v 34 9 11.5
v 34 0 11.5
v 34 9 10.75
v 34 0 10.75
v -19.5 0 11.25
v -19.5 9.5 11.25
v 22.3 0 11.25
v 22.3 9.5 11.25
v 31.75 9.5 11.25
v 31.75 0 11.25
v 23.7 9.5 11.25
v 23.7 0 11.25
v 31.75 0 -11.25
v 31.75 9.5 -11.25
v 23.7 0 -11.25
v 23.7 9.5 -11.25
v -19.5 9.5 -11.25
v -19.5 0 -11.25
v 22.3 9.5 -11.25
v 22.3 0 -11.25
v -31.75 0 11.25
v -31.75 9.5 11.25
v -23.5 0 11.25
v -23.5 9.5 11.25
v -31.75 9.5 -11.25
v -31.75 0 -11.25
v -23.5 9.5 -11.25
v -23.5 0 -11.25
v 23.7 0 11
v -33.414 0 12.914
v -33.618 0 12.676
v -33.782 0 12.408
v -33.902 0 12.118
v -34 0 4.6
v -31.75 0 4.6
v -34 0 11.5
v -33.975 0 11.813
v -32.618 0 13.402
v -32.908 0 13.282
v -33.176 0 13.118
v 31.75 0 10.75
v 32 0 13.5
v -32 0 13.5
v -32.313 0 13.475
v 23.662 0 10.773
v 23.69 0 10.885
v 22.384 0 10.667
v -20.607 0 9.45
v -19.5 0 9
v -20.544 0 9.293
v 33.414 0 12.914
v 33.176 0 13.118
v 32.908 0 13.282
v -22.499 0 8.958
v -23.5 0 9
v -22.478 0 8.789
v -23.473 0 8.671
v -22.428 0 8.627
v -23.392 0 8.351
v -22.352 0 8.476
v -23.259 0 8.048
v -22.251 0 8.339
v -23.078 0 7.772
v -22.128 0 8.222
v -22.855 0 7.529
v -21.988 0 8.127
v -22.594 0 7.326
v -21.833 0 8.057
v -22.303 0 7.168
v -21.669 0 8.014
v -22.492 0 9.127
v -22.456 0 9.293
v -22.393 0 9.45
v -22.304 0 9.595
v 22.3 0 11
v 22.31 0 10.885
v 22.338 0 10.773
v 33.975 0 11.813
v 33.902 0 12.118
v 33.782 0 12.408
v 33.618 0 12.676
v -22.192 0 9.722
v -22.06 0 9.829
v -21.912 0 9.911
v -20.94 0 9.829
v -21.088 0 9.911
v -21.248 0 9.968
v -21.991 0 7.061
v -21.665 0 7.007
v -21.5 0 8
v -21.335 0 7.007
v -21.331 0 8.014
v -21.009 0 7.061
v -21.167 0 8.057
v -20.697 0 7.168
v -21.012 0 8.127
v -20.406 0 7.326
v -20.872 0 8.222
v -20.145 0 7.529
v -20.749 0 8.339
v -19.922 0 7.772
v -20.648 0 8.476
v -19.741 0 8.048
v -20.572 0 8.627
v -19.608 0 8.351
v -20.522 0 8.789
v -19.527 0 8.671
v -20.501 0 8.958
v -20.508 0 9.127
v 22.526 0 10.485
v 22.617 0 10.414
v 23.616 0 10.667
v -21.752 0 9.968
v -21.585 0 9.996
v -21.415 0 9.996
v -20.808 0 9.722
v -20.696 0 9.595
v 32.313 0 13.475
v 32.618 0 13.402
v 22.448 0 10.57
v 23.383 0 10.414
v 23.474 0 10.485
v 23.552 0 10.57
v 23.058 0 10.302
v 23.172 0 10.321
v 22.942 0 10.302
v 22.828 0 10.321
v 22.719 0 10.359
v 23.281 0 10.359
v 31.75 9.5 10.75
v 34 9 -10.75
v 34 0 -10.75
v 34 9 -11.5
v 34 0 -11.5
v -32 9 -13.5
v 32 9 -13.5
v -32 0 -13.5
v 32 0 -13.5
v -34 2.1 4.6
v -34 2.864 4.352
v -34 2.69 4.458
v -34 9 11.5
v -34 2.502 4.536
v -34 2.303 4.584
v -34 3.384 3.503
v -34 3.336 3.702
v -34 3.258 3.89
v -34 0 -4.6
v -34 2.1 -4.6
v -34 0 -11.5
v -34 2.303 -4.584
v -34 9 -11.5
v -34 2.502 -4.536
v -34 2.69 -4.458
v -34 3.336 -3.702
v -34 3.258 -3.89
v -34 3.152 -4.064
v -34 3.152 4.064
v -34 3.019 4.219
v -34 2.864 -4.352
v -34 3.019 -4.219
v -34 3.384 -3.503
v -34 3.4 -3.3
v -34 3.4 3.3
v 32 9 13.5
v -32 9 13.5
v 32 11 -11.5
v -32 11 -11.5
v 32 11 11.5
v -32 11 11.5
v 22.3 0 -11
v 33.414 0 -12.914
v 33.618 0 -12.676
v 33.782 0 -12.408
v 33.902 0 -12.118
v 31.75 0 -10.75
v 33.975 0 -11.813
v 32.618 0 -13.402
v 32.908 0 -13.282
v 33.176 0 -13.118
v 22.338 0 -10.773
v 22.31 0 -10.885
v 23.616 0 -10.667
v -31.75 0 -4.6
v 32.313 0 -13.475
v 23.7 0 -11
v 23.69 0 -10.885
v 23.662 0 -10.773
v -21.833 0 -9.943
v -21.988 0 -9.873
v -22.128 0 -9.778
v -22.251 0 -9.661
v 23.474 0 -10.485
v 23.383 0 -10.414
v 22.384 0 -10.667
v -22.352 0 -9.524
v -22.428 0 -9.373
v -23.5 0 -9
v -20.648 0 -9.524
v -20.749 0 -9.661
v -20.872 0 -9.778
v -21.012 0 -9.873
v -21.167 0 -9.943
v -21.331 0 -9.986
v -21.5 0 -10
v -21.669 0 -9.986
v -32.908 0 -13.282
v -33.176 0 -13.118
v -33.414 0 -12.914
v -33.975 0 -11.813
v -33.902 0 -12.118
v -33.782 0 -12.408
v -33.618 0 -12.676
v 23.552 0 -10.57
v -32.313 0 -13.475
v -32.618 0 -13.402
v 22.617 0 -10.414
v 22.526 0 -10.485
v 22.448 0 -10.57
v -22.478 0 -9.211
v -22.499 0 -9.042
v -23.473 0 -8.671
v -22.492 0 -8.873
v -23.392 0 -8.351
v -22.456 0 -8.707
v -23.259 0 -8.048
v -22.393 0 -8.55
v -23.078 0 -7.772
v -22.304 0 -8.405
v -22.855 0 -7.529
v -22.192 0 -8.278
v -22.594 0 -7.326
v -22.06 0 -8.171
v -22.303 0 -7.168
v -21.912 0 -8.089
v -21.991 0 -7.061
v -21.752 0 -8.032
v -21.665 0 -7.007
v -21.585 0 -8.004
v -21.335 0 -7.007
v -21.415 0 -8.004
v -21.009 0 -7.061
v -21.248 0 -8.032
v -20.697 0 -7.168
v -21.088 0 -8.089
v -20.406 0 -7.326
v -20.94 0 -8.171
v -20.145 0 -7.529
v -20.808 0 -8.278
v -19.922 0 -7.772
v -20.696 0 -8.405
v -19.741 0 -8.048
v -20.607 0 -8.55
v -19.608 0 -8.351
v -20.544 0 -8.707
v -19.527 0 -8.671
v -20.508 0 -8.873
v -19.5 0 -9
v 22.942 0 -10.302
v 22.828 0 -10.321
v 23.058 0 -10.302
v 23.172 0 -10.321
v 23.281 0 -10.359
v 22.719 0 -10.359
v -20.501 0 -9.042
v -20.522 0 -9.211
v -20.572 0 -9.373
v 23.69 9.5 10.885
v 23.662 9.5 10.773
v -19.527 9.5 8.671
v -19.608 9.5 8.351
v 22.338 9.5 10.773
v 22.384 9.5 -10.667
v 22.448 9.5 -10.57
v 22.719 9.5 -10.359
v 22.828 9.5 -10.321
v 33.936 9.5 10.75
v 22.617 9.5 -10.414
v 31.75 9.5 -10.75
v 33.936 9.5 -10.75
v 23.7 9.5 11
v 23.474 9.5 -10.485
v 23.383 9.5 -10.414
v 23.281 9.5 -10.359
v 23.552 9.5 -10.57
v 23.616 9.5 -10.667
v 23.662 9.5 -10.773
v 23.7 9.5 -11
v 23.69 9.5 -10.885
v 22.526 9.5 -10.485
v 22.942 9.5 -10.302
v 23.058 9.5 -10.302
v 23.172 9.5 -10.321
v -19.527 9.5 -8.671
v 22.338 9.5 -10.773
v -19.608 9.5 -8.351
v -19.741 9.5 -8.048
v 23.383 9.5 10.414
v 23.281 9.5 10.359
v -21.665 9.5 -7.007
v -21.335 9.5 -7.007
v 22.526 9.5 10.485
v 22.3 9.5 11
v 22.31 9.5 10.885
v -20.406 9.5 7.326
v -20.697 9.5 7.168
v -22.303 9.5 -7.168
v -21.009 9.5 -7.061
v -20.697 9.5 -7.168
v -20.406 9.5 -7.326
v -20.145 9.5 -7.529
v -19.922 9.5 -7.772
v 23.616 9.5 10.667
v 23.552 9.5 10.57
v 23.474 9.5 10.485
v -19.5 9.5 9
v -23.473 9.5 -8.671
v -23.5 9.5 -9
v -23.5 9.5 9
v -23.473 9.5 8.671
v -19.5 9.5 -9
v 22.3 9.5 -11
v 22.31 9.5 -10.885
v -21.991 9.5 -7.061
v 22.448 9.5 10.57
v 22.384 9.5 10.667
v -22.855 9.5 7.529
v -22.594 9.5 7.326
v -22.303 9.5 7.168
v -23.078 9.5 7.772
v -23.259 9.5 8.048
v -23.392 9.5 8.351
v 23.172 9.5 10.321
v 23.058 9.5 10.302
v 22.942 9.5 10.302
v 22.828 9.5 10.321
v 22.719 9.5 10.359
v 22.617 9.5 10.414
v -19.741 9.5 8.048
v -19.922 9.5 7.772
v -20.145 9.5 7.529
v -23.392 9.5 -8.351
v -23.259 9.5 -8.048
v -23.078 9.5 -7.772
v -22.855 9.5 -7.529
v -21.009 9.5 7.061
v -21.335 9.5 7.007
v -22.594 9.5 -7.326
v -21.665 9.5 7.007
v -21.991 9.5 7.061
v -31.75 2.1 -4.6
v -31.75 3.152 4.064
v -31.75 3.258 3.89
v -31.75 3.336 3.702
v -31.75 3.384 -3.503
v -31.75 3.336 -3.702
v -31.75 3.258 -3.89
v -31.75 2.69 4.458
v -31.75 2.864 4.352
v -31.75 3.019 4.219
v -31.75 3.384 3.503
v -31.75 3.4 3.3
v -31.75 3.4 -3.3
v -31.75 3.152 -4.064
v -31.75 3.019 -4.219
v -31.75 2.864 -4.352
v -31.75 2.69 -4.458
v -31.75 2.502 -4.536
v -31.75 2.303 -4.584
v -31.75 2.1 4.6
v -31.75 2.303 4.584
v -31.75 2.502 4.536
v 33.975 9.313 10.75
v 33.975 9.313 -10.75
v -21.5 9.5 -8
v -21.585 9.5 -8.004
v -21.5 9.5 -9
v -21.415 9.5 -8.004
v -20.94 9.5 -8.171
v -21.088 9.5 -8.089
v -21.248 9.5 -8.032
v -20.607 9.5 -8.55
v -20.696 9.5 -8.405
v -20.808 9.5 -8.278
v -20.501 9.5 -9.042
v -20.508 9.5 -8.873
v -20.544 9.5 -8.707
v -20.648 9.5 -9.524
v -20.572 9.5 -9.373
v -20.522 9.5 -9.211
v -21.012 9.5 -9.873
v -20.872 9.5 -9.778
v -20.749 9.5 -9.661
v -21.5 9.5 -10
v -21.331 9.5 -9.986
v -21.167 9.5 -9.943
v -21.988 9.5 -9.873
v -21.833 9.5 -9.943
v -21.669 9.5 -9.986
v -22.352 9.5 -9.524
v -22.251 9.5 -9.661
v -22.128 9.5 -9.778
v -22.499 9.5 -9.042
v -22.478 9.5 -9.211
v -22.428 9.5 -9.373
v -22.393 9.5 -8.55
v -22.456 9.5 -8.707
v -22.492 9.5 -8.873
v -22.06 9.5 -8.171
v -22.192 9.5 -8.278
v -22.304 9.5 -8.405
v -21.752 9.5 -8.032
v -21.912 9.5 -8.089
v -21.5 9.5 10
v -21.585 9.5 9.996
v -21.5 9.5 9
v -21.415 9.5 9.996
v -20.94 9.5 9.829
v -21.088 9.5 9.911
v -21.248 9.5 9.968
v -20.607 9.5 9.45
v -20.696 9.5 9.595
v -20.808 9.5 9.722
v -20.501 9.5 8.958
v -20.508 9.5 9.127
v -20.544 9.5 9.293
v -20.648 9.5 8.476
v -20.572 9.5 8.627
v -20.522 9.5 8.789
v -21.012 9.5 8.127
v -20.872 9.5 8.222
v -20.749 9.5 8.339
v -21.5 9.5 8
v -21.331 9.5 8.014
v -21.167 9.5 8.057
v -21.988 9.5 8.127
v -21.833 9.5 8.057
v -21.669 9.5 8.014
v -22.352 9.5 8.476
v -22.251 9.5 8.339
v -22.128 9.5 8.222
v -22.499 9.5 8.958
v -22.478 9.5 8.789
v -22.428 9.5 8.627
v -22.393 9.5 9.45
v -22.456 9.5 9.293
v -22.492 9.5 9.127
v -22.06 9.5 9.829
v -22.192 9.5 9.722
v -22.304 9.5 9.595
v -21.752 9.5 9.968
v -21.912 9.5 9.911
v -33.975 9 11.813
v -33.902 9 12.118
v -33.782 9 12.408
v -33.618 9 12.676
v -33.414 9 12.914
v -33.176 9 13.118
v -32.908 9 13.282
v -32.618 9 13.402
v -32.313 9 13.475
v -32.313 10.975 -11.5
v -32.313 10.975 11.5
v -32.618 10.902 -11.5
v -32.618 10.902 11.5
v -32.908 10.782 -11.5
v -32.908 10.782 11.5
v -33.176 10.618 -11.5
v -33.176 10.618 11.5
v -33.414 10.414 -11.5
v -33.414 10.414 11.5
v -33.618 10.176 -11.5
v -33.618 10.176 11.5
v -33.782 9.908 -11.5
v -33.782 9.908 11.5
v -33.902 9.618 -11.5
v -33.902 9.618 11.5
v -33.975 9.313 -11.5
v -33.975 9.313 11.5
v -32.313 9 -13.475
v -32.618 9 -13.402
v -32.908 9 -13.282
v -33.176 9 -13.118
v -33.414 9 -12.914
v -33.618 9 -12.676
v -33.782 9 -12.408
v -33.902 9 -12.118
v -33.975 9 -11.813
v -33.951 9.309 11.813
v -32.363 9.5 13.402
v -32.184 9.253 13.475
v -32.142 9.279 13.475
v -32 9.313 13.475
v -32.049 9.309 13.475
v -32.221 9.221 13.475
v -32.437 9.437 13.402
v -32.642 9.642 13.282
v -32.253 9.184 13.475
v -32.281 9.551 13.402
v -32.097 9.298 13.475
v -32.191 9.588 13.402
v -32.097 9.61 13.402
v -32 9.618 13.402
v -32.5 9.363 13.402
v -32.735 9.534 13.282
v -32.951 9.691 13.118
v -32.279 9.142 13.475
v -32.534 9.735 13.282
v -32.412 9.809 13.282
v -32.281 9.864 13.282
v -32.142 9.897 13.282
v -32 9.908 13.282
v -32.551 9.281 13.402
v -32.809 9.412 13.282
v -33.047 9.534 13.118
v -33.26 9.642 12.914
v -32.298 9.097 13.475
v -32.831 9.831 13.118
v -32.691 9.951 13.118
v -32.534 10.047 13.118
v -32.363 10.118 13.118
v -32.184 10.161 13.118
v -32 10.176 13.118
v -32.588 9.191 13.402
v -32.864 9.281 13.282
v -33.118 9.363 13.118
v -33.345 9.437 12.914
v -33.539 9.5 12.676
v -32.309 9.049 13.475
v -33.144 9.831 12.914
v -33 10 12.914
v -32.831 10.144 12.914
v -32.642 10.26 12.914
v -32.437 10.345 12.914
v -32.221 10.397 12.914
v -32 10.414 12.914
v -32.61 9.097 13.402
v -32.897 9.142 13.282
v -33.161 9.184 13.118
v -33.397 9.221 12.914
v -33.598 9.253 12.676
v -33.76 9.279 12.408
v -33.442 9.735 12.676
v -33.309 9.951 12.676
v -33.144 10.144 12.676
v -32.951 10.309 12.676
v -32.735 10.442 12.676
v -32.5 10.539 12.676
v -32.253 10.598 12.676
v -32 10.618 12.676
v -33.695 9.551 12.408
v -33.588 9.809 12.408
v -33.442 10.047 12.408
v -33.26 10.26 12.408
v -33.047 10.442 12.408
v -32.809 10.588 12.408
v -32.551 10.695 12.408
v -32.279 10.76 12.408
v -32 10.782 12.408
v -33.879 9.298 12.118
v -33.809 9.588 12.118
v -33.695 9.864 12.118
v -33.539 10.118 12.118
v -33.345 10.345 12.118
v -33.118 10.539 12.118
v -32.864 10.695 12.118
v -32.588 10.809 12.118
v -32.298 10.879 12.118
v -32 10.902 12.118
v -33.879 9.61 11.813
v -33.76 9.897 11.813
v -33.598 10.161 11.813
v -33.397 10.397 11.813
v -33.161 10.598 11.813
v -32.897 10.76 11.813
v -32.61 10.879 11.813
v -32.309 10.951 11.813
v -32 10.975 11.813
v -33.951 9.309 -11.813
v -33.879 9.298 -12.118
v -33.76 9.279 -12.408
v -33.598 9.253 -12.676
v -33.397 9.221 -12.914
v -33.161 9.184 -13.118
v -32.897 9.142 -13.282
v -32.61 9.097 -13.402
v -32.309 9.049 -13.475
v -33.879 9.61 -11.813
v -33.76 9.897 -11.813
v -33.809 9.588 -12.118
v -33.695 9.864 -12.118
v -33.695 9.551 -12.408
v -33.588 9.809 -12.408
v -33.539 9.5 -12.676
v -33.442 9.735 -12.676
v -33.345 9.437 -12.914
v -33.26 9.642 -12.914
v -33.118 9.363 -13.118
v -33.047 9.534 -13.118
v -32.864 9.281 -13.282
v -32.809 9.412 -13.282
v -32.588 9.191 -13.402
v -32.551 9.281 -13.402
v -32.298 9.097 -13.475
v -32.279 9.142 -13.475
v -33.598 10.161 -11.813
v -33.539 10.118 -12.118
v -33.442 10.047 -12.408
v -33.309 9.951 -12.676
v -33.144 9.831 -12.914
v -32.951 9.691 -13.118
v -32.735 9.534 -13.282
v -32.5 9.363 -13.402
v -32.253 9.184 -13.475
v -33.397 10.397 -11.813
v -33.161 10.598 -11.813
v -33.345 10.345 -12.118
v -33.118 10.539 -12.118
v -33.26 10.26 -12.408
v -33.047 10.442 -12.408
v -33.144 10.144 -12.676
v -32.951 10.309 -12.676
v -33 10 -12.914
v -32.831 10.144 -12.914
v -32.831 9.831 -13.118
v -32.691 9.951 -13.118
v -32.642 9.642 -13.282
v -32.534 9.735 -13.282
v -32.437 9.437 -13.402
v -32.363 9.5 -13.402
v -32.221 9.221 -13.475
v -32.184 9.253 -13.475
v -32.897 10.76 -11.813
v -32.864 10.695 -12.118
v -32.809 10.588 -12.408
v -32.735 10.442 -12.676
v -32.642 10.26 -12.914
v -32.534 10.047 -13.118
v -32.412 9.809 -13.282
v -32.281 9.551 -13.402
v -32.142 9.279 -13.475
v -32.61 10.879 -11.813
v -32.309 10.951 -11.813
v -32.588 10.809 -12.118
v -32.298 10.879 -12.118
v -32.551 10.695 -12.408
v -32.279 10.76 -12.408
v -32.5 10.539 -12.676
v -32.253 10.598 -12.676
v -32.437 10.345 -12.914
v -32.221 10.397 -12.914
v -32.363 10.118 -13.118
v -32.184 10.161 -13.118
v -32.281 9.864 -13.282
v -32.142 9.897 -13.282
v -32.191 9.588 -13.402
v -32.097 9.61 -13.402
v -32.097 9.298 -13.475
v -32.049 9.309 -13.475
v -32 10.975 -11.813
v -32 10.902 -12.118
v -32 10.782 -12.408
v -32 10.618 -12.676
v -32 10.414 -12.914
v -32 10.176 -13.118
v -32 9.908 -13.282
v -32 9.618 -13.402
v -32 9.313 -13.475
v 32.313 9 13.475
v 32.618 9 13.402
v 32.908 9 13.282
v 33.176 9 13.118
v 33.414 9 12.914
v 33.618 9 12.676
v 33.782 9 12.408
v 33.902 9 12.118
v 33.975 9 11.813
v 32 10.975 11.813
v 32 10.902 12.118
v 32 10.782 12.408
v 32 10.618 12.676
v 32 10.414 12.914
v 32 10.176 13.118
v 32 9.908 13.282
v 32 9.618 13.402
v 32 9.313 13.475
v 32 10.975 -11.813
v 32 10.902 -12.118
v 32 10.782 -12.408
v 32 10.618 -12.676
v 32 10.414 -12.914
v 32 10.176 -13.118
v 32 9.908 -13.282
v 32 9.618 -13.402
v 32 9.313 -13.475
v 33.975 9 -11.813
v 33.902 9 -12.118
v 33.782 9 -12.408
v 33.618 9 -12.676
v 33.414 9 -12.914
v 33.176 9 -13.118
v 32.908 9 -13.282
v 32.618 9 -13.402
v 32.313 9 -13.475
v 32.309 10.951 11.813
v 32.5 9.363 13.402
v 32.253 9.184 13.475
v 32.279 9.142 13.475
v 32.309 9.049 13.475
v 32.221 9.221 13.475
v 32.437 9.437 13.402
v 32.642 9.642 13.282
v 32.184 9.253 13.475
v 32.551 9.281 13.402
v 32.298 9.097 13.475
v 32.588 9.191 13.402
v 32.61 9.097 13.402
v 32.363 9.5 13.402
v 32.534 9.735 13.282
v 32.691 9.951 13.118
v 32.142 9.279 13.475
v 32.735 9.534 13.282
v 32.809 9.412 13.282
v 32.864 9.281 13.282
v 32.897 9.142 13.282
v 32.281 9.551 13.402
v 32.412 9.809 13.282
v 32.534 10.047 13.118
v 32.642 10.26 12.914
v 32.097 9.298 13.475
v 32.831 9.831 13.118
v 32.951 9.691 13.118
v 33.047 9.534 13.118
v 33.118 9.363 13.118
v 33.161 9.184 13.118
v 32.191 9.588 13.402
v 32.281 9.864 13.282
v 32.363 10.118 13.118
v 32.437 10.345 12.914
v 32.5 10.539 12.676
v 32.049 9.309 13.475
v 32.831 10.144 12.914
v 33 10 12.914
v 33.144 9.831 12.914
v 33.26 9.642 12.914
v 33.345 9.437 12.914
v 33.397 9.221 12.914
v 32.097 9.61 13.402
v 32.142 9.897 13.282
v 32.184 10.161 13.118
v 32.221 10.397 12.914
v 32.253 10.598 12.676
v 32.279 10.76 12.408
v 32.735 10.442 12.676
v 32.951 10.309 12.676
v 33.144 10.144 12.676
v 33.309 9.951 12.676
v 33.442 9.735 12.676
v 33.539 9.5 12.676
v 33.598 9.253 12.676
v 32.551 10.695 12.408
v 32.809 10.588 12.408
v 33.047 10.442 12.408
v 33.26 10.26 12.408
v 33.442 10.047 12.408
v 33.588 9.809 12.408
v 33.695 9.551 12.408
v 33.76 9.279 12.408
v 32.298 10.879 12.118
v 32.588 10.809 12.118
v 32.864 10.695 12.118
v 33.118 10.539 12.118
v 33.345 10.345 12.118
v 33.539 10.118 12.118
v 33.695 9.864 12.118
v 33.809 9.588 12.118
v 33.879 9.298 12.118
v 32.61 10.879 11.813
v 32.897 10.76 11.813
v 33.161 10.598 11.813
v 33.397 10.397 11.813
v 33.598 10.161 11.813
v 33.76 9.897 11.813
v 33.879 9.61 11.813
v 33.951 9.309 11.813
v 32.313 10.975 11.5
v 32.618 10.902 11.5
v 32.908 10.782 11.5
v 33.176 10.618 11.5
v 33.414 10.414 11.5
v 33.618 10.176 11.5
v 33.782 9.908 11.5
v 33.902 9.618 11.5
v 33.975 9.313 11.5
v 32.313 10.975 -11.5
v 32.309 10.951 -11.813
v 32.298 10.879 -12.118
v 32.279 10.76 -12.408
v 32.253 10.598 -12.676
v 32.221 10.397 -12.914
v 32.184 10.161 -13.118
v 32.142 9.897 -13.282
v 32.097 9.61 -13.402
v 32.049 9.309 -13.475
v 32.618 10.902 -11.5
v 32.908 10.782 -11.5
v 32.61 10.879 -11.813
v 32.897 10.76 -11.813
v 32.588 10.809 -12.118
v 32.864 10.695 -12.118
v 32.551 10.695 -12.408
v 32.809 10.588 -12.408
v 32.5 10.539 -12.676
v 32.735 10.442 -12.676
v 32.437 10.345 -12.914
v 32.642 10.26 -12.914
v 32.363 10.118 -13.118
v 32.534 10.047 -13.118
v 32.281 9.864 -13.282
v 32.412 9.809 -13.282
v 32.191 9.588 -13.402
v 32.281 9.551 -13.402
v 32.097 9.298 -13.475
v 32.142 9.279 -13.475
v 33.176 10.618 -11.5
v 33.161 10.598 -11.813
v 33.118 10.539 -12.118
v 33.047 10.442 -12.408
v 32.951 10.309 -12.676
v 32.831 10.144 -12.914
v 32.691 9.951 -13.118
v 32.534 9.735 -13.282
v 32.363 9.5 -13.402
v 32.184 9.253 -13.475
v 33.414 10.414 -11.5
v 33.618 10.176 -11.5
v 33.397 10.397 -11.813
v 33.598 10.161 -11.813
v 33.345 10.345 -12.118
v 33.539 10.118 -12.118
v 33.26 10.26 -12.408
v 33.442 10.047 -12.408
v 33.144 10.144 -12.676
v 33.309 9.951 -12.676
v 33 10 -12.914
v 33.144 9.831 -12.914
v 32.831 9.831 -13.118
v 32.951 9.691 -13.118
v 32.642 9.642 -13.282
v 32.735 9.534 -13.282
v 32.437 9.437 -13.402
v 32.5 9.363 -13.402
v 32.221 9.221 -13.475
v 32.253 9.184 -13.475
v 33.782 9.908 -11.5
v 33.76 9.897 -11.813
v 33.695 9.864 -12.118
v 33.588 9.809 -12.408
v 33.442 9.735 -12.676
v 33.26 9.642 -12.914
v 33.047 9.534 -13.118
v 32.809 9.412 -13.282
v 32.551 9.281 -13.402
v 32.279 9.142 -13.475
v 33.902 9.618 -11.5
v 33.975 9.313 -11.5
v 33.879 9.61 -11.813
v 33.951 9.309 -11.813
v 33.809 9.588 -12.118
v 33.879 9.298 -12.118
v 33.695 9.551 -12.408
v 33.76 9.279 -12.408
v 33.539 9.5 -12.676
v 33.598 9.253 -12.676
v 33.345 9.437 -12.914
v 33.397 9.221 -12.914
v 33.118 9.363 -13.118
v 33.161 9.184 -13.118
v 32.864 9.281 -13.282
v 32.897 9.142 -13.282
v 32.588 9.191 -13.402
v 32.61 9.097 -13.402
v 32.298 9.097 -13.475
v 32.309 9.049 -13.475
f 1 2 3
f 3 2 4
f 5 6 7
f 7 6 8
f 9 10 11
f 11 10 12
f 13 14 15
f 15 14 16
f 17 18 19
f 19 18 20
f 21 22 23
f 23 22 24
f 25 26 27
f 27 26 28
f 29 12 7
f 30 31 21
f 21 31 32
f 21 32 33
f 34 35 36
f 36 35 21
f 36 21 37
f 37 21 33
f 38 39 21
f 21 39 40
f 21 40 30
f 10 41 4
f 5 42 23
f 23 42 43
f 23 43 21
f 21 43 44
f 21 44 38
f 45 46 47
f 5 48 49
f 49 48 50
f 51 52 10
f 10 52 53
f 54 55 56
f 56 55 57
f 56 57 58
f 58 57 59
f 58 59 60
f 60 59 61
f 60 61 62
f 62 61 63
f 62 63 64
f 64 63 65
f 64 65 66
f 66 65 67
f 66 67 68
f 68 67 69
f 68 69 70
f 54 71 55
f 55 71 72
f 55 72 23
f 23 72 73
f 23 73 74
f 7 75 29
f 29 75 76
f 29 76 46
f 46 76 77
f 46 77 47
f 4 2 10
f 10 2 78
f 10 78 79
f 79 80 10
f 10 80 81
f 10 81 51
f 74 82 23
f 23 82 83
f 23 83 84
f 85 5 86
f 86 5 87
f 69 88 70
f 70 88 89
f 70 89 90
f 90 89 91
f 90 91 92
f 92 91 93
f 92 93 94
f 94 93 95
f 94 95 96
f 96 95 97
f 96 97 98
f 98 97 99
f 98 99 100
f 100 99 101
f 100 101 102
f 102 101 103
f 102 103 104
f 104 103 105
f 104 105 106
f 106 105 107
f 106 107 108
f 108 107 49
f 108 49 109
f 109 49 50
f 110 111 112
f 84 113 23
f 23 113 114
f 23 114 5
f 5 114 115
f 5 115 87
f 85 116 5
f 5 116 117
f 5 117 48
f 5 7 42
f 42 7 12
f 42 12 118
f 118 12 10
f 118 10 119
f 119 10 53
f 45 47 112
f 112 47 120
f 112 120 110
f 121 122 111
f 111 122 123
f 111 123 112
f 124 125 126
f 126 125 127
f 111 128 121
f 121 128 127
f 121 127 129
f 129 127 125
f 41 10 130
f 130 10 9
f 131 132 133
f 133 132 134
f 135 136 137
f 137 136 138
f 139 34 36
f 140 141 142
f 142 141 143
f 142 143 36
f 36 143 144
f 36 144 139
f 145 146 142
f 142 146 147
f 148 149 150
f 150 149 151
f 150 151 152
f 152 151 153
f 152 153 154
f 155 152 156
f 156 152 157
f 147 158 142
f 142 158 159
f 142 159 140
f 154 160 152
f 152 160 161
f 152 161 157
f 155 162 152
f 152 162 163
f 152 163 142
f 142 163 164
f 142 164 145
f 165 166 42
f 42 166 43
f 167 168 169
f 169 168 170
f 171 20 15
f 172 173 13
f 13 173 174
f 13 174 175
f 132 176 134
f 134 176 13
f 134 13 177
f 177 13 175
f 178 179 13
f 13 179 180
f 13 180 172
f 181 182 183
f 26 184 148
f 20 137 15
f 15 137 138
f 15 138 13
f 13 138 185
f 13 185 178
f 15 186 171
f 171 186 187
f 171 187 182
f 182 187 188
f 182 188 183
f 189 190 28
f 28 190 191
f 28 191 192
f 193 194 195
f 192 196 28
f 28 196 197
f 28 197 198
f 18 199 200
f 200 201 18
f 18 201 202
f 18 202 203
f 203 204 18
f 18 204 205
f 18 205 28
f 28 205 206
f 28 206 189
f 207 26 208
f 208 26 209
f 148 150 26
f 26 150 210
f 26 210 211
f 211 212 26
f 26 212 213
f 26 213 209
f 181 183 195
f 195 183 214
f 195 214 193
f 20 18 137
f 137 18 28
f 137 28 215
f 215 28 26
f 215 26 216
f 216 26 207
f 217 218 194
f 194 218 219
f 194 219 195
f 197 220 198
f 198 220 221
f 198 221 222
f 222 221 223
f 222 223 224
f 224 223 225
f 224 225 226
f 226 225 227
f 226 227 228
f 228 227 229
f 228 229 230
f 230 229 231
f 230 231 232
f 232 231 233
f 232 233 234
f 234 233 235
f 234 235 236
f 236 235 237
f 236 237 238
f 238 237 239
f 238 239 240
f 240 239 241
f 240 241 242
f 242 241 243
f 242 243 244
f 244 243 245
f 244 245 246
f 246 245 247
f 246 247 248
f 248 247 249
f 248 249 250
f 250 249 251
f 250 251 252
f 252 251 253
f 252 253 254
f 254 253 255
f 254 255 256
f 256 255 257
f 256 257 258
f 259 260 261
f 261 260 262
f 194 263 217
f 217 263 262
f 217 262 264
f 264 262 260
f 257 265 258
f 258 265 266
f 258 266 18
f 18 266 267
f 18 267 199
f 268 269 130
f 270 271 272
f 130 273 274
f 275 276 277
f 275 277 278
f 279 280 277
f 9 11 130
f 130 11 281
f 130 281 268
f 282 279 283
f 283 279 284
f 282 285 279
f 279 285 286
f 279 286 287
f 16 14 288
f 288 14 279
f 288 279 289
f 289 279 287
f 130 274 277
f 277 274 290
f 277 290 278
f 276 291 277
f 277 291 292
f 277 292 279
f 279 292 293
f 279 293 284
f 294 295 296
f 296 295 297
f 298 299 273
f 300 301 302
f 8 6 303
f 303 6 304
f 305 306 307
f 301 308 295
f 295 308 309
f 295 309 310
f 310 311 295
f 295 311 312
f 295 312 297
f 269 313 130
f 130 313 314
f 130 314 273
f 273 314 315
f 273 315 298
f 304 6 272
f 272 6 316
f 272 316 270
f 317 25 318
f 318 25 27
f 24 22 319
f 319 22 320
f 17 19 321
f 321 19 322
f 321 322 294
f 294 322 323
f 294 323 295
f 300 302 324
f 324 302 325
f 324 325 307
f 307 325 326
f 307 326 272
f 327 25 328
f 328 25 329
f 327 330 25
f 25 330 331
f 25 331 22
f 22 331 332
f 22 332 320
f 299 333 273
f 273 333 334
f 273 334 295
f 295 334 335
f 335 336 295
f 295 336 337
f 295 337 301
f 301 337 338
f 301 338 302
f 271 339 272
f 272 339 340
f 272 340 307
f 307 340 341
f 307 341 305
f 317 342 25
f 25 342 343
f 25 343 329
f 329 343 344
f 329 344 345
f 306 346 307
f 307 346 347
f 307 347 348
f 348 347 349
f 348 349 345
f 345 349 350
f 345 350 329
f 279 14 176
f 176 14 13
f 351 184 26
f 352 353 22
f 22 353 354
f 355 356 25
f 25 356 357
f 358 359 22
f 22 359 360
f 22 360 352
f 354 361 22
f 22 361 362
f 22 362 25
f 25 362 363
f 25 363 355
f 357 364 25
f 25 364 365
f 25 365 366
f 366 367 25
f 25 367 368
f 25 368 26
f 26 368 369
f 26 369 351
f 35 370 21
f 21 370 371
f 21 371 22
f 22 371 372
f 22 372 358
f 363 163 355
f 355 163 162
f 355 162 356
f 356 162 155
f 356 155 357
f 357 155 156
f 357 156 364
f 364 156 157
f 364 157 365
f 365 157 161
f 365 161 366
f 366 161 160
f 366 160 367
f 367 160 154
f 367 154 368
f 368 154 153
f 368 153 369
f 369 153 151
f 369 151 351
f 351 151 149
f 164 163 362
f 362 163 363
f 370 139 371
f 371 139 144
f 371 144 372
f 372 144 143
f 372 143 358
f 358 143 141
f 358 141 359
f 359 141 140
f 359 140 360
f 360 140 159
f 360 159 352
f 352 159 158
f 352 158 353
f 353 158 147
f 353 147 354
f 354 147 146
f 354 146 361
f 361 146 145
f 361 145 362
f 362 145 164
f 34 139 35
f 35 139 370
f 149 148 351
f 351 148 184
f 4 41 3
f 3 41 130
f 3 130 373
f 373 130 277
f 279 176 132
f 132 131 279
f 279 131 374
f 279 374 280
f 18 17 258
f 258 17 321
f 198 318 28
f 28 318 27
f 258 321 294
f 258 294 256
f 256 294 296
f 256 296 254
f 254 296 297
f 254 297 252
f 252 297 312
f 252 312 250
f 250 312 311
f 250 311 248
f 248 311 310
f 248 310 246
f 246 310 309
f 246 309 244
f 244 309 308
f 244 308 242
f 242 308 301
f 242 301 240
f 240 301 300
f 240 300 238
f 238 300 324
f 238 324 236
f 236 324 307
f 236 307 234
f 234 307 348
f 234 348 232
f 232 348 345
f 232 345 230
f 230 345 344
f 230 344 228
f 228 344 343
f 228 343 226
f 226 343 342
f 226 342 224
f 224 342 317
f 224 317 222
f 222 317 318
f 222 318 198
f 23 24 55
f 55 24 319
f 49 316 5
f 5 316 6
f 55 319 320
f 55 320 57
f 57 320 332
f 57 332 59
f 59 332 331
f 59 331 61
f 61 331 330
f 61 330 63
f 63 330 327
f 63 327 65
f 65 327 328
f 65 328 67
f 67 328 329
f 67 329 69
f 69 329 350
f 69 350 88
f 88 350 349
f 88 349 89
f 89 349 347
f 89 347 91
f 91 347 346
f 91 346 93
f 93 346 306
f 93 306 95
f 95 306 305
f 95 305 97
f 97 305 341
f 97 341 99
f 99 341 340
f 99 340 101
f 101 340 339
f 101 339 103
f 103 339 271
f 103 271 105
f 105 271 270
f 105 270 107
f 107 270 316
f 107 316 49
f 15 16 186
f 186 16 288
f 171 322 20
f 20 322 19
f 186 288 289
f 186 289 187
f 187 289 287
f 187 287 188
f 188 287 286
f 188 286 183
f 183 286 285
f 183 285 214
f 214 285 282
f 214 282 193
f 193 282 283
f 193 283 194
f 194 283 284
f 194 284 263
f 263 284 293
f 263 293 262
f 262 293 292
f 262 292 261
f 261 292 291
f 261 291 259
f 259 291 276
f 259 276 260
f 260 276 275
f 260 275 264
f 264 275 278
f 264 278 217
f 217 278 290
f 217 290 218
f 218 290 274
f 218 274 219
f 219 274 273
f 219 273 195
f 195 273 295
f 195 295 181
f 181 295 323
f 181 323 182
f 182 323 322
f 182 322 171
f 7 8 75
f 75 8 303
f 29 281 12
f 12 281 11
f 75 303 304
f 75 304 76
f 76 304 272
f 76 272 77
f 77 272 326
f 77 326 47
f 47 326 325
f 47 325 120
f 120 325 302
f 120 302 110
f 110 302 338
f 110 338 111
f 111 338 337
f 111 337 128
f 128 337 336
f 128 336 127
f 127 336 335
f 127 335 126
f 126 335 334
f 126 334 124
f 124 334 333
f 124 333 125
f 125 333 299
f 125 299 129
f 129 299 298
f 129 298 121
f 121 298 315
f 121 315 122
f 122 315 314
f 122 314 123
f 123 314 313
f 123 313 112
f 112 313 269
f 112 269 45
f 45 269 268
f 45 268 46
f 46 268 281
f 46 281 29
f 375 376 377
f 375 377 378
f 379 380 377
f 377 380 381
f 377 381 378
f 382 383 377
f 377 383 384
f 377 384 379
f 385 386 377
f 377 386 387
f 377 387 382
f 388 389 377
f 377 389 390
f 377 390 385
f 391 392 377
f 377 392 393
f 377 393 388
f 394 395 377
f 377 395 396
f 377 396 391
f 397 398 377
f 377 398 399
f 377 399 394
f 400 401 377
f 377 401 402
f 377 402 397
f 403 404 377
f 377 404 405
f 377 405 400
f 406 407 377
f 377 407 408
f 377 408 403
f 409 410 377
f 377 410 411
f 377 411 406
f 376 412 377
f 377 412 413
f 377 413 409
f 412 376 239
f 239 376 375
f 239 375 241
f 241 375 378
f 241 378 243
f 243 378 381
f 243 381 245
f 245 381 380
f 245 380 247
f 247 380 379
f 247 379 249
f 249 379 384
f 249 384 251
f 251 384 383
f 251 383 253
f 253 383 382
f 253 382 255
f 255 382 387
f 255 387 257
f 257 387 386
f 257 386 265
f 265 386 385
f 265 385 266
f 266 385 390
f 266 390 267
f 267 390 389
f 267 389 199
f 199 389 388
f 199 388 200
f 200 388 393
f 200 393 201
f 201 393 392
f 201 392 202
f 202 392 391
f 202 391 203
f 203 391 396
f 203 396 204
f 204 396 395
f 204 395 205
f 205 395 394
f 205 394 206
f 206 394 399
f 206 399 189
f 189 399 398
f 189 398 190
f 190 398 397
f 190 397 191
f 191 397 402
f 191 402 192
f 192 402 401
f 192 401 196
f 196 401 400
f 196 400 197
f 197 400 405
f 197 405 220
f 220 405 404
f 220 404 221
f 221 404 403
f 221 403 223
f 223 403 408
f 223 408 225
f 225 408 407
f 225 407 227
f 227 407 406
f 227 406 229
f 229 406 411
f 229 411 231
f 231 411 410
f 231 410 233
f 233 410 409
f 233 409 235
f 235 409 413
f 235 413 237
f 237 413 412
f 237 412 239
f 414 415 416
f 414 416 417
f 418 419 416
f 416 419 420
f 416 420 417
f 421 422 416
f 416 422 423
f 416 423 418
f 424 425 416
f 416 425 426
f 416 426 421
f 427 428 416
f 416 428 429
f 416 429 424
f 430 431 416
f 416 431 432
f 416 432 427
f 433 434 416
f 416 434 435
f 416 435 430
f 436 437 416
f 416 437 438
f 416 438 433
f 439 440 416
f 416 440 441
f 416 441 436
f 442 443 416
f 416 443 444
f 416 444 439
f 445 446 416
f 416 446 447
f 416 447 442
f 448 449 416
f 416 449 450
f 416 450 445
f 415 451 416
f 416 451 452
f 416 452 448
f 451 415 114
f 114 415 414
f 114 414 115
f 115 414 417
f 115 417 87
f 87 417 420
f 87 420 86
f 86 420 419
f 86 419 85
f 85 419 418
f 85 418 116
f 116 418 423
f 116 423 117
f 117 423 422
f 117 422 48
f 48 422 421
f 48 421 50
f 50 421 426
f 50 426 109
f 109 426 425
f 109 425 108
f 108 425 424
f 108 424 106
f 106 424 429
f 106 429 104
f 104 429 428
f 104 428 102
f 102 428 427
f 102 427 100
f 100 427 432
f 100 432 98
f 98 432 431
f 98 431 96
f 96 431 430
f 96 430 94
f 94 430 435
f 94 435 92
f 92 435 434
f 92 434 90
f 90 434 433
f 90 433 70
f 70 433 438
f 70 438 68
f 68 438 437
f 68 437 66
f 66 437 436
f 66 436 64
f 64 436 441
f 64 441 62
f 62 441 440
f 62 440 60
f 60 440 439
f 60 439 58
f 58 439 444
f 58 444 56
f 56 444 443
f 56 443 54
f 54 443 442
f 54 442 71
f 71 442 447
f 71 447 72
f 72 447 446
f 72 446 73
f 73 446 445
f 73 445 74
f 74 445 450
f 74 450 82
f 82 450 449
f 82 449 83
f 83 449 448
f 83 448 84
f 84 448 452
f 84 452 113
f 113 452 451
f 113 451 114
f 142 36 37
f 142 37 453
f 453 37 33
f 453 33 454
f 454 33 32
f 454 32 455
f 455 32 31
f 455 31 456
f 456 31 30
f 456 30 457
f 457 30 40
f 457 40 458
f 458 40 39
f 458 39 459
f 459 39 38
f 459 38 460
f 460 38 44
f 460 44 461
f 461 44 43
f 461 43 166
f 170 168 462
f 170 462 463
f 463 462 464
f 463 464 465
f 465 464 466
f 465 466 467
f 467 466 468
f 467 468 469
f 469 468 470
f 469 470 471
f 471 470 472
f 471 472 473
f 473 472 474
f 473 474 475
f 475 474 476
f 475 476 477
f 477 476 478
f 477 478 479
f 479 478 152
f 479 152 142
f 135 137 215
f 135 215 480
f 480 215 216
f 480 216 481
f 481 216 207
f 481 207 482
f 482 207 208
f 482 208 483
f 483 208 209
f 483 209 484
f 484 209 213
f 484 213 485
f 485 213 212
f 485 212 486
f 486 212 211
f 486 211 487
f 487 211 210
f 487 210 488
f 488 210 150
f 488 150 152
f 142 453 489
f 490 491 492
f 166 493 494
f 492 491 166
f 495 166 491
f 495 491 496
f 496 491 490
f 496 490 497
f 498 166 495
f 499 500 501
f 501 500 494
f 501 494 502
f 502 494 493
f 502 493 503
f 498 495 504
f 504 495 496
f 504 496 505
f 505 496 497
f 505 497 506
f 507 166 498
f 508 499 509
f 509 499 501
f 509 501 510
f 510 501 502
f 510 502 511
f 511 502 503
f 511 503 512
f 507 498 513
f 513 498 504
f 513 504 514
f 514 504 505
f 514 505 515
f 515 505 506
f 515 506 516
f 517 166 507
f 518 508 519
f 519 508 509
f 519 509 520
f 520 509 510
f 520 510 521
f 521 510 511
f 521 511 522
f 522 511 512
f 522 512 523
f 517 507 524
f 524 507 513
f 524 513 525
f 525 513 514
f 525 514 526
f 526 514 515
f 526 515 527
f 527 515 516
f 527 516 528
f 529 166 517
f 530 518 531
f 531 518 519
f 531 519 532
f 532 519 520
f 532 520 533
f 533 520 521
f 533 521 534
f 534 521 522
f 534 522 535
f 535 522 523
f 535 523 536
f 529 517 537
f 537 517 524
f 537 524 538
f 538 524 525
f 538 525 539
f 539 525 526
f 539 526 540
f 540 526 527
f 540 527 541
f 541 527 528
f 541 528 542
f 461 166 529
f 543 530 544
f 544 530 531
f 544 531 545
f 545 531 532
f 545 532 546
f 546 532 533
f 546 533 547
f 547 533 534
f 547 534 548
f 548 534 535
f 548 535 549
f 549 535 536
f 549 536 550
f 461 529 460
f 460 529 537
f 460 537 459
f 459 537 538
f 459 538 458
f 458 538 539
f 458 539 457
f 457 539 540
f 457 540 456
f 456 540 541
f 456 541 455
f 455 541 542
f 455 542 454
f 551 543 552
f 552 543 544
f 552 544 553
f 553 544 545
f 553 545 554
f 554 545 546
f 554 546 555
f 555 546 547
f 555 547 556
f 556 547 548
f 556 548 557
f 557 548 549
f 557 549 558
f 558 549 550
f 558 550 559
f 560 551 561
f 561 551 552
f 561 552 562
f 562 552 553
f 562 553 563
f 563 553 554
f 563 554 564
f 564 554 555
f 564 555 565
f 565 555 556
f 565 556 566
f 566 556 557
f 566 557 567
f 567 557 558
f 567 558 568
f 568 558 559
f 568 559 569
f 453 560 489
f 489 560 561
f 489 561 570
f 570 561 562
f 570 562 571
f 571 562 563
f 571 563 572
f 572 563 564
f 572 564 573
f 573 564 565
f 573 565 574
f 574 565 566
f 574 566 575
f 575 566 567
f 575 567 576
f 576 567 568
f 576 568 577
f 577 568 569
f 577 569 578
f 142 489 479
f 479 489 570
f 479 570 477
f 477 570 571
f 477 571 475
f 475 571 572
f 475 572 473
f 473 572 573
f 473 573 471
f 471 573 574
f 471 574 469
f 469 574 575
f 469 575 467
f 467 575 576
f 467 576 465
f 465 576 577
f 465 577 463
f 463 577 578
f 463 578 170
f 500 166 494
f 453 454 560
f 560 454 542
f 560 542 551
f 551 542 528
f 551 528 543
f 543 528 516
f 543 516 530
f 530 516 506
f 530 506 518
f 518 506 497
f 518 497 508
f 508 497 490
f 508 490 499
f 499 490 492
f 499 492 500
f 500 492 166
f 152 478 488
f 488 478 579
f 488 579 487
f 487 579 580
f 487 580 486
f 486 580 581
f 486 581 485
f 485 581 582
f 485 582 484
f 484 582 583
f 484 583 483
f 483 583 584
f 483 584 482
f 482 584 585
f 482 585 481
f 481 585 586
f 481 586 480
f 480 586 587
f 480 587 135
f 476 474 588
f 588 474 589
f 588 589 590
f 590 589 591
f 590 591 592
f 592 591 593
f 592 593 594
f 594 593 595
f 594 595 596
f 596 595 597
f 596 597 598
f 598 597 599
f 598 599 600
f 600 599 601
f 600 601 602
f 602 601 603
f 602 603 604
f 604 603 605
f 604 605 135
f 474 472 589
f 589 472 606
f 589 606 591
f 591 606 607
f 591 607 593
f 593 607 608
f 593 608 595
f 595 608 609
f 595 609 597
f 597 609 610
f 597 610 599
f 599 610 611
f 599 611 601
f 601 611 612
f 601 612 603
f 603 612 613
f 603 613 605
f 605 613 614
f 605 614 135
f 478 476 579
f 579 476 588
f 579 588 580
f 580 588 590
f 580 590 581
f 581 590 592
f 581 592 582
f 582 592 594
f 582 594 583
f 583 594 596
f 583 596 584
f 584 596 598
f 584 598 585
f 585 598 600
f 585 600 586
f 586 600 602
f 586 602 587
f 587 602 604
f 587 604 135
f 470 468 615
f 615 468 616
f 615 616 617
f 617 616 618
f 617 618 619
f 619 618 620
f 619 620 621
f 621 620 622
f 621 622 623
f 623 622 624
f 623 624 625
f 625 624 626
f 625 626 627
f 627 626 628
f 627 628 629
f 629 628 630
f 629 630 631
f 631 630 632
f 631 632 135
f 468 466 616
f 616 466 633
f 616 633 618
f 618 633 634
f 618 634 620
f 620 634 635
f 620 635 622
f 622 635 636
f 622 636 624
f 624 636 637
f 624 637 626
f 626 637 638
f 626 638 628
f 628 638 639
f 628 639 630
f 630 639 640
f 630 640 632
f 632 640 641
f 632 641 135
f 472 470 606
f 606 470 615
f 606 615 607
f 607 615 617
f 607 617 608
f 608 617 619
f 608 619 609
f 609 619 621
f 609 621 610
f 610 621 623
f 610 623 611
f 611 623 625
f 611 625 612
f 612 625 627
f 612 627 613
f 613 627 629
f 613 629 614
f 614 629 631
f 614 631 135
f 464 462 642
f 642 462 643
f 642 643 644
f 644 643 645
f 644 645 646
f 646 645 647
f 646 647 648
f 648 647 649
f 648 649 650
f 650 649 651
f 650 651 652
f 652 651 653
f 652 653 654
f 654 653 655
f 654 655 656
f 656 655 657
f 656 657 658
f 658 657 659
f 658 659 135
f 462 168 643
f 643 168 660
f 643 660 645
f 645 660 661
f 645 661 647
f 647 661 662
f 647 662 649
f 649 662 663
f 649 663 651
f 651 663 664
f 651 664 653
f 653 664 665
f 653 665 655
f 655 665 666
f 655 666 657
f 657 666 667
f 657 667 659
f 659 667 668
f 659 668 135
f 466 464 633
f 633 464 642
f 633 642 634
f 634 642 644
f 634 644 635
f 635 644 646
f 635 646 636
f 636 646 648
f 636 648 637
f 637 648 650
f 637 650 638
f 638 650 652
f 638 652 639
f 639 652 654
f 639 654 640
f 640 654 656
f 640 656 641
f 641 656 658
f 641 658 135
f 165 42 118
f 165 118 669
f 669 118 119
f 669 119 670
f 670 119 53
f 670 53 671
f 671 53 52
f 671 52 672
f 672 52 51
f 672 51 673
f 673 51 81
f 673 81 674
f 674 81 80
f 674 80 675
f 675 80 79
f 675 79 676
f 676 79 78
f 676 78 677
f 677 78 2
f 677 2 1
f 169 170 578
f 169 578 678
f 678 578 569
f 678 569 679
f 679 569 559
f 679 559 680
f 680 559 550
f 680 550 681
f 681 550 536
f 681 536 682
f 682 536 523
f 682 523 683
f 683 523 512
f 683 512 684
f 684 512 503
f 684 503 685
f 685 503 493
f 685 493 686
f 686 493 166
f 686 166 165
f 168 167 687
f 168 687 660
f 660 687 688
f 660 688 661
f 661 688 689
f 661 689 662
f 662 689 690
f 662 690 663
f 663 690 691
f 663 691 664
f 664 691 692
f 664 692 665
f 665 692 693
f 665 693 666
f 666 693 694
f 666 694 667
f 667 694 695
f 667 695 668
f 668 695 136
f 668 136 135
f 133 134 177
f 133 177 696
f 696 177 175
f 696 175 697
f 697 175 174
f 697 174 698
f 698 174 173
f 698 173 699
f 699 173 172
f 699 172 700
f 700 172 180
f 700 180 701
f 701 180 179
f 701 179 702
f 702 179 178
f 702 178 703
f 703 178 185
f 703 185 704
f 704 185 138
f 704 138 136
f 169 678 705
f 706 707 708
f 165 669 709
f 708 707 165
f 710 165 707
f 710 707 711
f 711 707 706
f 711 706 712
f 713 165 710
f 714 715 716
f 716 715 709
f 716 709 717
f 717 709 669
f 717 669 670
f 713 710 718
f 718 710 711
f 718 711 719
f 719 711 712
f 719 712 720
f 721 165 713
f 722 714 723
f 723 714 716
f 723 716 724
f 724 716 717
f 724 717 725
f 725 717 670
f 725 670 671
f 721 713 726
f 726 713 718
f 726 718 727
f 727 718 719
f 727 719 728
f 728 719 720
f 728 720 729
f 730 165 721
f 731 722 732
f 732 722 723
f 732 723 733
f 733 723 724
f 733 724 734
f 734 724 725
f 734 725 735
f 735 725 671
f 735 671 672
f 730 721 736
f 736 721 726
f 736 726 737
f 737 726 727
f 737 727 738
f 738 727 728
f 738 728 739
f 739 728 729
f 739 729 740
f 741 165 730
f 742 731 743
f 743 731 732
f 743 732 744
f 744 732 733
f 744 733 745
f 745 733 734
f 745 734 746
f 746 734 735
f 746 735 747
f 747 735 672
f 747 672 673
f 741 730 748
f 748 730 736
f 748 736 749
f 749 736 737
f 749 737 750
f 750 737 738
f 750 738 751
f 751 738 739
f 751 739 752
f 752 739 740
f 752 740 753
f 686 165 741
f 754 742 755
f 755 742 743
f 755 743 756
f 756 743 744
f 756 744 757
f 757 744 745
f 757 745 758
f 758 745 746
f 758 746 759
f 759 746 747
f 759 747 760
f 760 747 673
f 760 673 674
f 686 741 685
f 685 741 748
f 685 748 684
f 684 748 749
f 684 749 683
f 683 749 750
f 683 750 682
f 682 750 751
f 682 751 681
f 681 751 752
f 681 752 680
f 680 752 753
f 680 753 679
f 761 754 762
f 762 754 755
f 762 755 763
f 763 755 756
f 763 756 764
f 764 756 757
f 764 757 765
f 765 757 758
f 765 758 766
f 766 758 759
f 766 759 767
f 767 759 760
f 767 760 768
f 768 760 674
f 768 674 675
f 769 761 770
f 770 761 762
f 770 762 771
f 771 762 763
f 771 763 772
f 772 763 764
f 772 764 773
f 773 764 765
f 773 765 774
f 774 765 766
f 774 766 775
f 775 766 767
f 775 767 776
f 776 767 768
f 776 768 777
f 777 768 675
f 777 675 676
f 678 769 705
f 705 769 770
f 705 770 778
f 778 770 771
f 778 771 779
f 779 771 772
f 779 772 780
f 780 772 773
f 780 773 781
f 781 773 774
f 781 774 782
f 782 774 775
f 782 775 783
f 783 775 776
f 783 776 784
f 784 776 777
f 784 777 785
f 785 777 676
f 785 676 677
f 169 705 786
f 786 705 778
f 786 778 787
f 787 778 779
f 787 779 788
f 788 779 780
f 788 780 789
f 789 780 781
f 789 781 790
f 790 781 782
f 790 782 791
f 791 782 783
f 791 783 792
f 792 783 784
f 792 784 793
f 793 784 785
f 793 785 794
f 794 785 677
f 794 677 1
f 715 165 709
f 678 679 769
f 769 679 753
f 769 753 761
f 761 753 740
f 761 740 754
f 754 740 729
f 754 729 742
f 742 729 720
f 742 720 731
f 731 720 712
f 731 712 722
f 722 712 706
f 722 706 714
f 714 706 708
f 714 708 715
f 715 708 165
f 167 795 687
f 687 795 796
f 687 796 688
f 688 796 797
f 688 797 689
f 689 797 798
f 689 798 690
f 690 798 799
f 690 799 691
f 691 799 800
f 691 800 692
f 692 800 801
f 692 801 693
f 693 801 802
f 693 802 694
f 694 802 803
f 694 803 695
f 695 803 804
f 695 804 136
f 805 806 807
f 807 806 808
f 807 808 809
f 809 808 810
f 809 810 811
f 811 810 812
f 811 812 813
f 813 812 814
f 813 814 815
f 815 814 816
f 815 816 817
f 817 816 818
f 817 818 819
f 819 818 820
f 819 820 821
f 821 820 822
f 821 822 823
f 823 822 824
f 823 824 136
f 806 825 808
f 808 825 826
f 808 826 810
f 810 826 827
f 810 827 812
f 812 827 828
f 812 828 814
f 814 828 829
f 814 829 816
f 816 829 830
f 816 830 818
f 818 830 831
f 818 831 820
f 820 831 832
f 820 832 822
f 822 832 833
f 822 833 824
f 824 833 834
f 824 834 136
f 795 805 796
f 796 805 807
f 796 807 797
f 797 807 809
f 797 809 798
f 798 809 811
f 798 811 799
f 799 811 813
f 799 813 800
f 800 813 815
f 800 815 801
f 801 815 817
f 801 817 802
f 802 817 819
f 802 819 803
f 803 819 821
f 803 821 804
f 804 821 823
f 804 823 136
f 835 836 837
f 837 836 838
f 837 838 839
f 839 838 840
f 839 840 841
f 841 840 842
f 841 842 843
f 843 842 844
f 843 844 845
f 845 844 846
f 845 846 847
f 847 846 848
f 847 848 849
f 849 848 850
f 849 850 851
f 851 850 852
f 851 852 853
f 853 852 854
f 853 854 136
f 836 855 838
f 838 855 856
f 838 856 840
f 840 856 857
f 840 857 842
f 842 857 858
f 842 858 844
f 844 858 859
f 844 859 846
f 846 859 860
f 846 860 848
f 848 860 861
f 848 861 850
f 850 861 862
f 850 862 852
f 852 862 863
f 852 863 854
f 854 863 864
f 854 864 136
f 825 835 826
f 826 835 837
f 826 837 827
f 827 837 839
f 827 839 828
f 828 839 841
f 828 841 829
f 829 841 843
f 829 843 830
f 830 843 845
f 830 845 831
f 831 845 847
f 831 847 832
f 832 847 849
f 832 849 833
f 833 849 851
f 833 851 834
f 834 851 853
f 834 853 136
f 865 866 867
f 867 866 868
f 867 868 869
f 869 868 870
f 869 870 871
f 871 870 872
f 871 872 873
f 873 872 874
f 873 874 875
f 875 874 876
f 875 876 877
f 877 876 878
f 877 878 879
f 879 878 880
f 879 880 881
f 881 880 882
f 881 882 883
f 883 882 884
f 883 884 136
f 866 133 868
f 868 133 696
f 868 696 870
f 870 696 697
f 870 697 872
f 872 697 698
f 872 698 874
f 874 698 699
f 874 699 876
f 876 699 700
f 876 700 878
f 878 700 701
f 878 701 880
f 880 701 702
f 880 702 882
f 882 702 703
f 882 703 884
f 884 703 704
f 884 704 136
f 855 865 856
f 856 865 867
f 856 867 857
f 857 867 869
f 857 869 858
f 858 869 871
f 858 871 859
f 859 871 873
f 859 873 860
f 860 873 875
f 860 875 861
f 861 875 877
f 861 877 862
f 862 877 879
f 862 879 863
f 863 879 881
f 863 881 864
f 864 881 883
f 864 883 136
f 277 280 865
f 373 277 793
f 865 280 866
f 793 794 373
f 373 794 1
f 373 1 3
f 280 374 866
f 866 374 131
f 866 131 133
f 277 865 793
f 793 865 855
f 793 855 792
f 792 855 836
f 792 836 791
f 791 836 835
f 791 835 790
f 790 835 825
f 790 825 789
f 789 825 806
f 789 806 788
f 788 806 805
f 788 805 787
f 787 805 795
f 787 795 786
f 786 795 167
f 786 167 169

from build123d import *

# Parameters (mm, degrees)
SKETCH_1_W          = 68
SKETCH_1_H          = 27
EXTRUDE_1_DEPTH     = 11
SKETCH_2_W          = 63.5
SKETCH_2_H          = 22.5
CUT_EXTRUDE_1_DEPTH = 9.5
CUT_EXTRUDE_2_DEPTH = 2.25
SKETCH_4_W          = 21.5
SKETCH_4_H          = 9.5
CUT_EXTRUDE_3_DEPTH = 2.25
EXTRUDE_2_DEPTH     = 9.5
EXTRUDE_3_DEPTH     = 9.5
SKETCH_7_R          = 1
CUT_EXTRUDE_4_DEPTH = 9.5
FILLET_1_R          = 2


with BuildPart() as part:
    # Эскиз1 → Бобышка-Вытянуть1 (new body)
    with BuildSketch(Plane(origin=(0, 0, 0), x_dir=(1, 0, 0), z_dir=(0, 1, 0))):
        Rectangle(SKETCH_1_W, SKETCH_1_H)
    extrude(amount=EXTRUDE_1_DEPTH)

    # Эскиз2 → Вырез-Вытянуть1 (cut)
    with BuildSketch(Plane.XZ):
        Rectangle(SKETCH_2_W, SKETCH_2_H)
    extrude(amount=-CUT_EXTRUDE_1_DEPTH, mode=Mode.SUBTRACT)

    # Эскиз3 → Вырез-Вытянуть2 (cut)
    with BuildSketch(Plane.ZY.offset(34)):
        with BuildLine():
            Line((-4.6, 2.1), (-4.6, 0))
            Line((-4.6, 0), (4.6, 0))
            Line((4.6, 0), (4.6, 2.1))
            ThreePointArc((4.6, 2.1), (4.219238816, 3.019238816), (3.3, 3.4))
            Line((3.3, 3.4), (-3.3, 3.4))
            ThreePointArc((-3.3, 3.4), (-4.219238816, 3.019238816), (-4.6, 2.1))
        make_face()
    extrude(amount=-CUT_EXTRUDE_2_DEPTH, mode=Mode.SUBTRACT)

    # Эскиз4 → Вырез-Вытянуть3 (cut)
    with BuildSketch(Plane(origin=(34, 0, 0), x_dir=(0, 0, -1), z_dir=(1, 0, 0))):
        with Locations((0, 4.75)):
            Rectangle(SKETCH_4_W, SKETCH_4_H)
    extrude(amount=-CUT_EXTRUDE_3_DEPTH, mode=Mode.SUBTRACT)

    # Эскиз5 → Бобышка-Вытянуть2 (add)
    with BuildSketch(Plane.XZ.offset(-9.5)):
        with BuildLine():
            Line((-19.5, -9), (-19.5, -11.25))
            Line((-19.5, -11.25), (-23.5, -11.25))
            Line((-23.5, -11.25), (-23.5, -9))
            ThreePointArc((-23.5, -9), (-21.5, -7), (-19.5, -9))
        make_face()
        with BuildLine():
            Line((-23.5, 11.25), (-23.5, 9))
            ThreePointArc((-23.5, 9), (-21.5, 7), (-19.5, 9))
            Line((-19.5, 9), (-19.5, 11.25))
            Line((-19.5, 11.25), (-23.5, 11.25))
        make_face()
    extrude(amount=EXTRUDE_2_DEPTH)

    # Эскиз6 → Бобышка-Вытянуть3 (add)
    with BuildSketch(Plane.XZ.offset(-9.5)):
        with BuildLine():
            Line((23.7, -11), (23.7, -11.25))
            Line((23.7, -11.25), (22.3, -11.25))
            Line((22.3, -11.25), (22.3, -11))
            ThreePointArc((22.3, -11), (23, -10.3), (23.7, -11))
        make_face()
        with BuildLine():
            Line((22.3, 11.25), (22.3, 11))
            ThreePointArc((22.3, 11), (23, 10.3), (23.7, 11))
            Line((23.7, 11), (23.7, 11.25))
            Line((23.7, 11.25), (22.3, 11.25))
        make_face()
    extrude(amount=EXTRUDE_3_DEPTH)

    # Эскиз7 → Вырез-Вытянуть4 (cut)
    with BuildSketch(Plane.XZ):
        with Locations(Location((-21.5, -9, 0), (0, 0, 270))):
            Circle(SKETCH_7_R)
        with Locations(Location((-21.5, 9, 0), (0, 0, 270))):
            Circle(SKETCH_7_R)
    extrude(amount=-CUT_EXTRUDE_4_DEPTH, mode=Mode.SUBTRACT)

    # Скругление1
    # the kernel refuses this fillet: 2 mm, written as the material it takes off along each edge
    with BuildSketch(Plane(origin=(32, 9, -11.5), x_dir=(1, 0, 0), z_dir=(0, 0, -1))) as fillet_1_piece_1_section:
        Polygon((0, 0), (FILLET_1_R, 0), (FILLET_1_R, -FILLET_1_R), (0, -FILLET_1_R), align=None)
    fillet_1_piece_1 = extrude(amount=FILLET_1_R, mode=Mode.PRIVATE)
    fillet_1_piece_1 = fillet_1_piece_1 - Plane(origin=(32, 9, -11.5), x_dir=(-0.7071067811865475, -0.7071067811865475, 0), z_dir=(0, 0, -1)) * Sphere(FILLET_1_R, mode=Mode.PRIVATE)
    add(fillet_1_piece_1, mode=Mode.SUBTRACT)
    with BuildSketch(Plane(origin=(32, 9, 11.5), x_dir=(0, 0, 1), z_dir=(1, 0, 0))) as fillet_1_piece_2_section:
        Polygon((0, 0), (FILLET_1_R, 0), (FILLET_1_R, -FILLET_1_R), (0, -FILLET_1_R), align=None)
    fillet_1_piece_2 = extrude(amount=FILLET_1_R, mode=Mode.PRIVATE)
    fillet_1_piece_2 = fillet_1_piece_2 - Plane(origin=(32, 9, 11.5), x_dir=(0, -0.7071067811865475, -0.7071067811865475), z_dir=(1, 0, 0)) * Sphere(FILLET_1_R, mode=Mode.PRIVATE)
    add(fillet_1_piece_2, mode=Mode.SUBTRACT)
    with BuildSketch(Plane(origin=(-32, 9, 11.5), x_dir=(0, 0, 1), z_dir=(-1, 0, 0))) as fillet_1_piece_3_section:
        Polygon((0, 0), (FILLET_1_R, 0), (FILLET_1_R, FILLET_1_R), (0, FILLET_1_R), align=None)
    fillet_1_piece_3 = extrude(amount=FILLET_1_R, mode=Mode.PRIVATE)
    fillet_1_piece_3 = fillet_1_piece_3 - Plane(origin=(-32, 9, 11.5), x_dir=(0, -0.7071067811865475, -0.7071067811865475), z_dir=(-1, 0, 0)) * Sphere(FILLET_1_R, mode=Mode.PRIVATE)
    add(fillet_1_piece_3, mode=Mode.SUBTRACT)
    with BuildSketch(Plane(origin=(-32, 9, -11.5), x_dir=(-1, 0, 0), z_dir=(0, 0, -1))) as fillet_1_piece_4_section:
        Polygon((0, 0), (FILLET_1_R, 0), (FILLET_1_R, FILLET_1_R), (0, FILLET_1_R), align=None)
    fillet_1_piece_4 = extrude(amount=FILLET_1_R, mode=Mode.PRIVATE)
    fillet_1_piece_4 = fillet_1_piece_4 - Plane(origin=(-32, 9, -11.5), x_dir=(0.7071067811865475, -0.7071067811865475, 0), z_dir=(0, 0, -1)) * Sphere(FILLET_1_R, mode=Mode.PRIVATE)
    add(fillet_1_piece_4, mode=Mode.SUBTRACT)
    with BuildSketch(Plane(origin=(34, 11, -11.5), x_dir=(0, -1, 0), z_dir=(0, 0, 1)), Plane(origin=(-34, 11, 11.5), x_dir=(0, -1, 0), z_dir=(0, 0, -1))) as fillet_1_piece_5:
        with BuildLine():
            CenterArc((FILLET_1_R, -FILLET_1_R), FILLET_1_R, 90, 90)
            Line((0, -FILLET_1_R), (0, 0))
            Line((0, 0), (FILLET_1_R, 0))
        make_face()
    extrude(amount=23, mode=Mode.SUBTRACT)
    with BuildSketch(Plane(origin=(34, -5, 13.5), x_dir=(0, 0, -1), z_dir=(0, 1, 0)), Plane(origin=(34, -5, -13.5), x_dir=(-1, 0, 0), z_dir=(0, 1, 0))) as fillet_1_piece_6:
        with BuildLine():
            CenterArc((FILLET_1_R, FILLET_1_R), FILLET_1_R, 180, 90)
            Line((0, FILLET_1_R), (0, 0))
            Line((0, 0), (FILLET_1_R, 0))
        make_face()
    extrude(amount=14, mode=Mode.SUBTRACT)
    with BuildSketch(Plane(origin=(32, 11, 13.5), x_dir=(0, 0, -1), z_dir=(-1, 0, 0))) as fillet_1_piece_7:
        with BuildLine():
            CenterArc((FILLET_1_R, FILLET_1_R), FILLET_1_R, 180, 90)
            Line((0, FILLET_1_R), (0, 0))
            Line((0, 0), (FILLET_1_R, 0))
        make_face()
    extrude(amount=64, mode=Mode.SUBTRACT)
    with BuildSketch(Plane(origin=(-34, -5, 13.5), x_dir=(0, 0, -1), z_dir=(0, 1, 0)), Plane(origin=(-34, -5, -13.5), x_dir=(1, 0, 0), z_dir=(0, 1, 0))) as fillet_1_piece_8:
        with BuildLine():
            CenterArc((FILLET_1_R, -FILLET_1_R), FILLET_1_R, 90, 90)
            Line((0, -FILLET_1_R), (0, 0))
            Line((0, 0), (FILLET_1_R, 0))
        make_face()
    extrude(amount=14, mode=Mode.SUBTRACT)
    with BuildSketch(Plane(origin=(-32, 11, -13.5), x_dir=(0, -1, 0), z_dir=(1, 0, 0))) as fillet_1_piece_9:
        with BuildLine():
            CenterArc((FILLET_1_R, -FILLET_1_R), FILLET_1_R, 90, 90)
            Line((0, -FILLET_1_R), (0, 0))
            Line((0, 0), (FILLET_1_R, 0))
        make_face()
    extrude(amount=64, mode=Mode.SUBTRACT)


solid = part.part
